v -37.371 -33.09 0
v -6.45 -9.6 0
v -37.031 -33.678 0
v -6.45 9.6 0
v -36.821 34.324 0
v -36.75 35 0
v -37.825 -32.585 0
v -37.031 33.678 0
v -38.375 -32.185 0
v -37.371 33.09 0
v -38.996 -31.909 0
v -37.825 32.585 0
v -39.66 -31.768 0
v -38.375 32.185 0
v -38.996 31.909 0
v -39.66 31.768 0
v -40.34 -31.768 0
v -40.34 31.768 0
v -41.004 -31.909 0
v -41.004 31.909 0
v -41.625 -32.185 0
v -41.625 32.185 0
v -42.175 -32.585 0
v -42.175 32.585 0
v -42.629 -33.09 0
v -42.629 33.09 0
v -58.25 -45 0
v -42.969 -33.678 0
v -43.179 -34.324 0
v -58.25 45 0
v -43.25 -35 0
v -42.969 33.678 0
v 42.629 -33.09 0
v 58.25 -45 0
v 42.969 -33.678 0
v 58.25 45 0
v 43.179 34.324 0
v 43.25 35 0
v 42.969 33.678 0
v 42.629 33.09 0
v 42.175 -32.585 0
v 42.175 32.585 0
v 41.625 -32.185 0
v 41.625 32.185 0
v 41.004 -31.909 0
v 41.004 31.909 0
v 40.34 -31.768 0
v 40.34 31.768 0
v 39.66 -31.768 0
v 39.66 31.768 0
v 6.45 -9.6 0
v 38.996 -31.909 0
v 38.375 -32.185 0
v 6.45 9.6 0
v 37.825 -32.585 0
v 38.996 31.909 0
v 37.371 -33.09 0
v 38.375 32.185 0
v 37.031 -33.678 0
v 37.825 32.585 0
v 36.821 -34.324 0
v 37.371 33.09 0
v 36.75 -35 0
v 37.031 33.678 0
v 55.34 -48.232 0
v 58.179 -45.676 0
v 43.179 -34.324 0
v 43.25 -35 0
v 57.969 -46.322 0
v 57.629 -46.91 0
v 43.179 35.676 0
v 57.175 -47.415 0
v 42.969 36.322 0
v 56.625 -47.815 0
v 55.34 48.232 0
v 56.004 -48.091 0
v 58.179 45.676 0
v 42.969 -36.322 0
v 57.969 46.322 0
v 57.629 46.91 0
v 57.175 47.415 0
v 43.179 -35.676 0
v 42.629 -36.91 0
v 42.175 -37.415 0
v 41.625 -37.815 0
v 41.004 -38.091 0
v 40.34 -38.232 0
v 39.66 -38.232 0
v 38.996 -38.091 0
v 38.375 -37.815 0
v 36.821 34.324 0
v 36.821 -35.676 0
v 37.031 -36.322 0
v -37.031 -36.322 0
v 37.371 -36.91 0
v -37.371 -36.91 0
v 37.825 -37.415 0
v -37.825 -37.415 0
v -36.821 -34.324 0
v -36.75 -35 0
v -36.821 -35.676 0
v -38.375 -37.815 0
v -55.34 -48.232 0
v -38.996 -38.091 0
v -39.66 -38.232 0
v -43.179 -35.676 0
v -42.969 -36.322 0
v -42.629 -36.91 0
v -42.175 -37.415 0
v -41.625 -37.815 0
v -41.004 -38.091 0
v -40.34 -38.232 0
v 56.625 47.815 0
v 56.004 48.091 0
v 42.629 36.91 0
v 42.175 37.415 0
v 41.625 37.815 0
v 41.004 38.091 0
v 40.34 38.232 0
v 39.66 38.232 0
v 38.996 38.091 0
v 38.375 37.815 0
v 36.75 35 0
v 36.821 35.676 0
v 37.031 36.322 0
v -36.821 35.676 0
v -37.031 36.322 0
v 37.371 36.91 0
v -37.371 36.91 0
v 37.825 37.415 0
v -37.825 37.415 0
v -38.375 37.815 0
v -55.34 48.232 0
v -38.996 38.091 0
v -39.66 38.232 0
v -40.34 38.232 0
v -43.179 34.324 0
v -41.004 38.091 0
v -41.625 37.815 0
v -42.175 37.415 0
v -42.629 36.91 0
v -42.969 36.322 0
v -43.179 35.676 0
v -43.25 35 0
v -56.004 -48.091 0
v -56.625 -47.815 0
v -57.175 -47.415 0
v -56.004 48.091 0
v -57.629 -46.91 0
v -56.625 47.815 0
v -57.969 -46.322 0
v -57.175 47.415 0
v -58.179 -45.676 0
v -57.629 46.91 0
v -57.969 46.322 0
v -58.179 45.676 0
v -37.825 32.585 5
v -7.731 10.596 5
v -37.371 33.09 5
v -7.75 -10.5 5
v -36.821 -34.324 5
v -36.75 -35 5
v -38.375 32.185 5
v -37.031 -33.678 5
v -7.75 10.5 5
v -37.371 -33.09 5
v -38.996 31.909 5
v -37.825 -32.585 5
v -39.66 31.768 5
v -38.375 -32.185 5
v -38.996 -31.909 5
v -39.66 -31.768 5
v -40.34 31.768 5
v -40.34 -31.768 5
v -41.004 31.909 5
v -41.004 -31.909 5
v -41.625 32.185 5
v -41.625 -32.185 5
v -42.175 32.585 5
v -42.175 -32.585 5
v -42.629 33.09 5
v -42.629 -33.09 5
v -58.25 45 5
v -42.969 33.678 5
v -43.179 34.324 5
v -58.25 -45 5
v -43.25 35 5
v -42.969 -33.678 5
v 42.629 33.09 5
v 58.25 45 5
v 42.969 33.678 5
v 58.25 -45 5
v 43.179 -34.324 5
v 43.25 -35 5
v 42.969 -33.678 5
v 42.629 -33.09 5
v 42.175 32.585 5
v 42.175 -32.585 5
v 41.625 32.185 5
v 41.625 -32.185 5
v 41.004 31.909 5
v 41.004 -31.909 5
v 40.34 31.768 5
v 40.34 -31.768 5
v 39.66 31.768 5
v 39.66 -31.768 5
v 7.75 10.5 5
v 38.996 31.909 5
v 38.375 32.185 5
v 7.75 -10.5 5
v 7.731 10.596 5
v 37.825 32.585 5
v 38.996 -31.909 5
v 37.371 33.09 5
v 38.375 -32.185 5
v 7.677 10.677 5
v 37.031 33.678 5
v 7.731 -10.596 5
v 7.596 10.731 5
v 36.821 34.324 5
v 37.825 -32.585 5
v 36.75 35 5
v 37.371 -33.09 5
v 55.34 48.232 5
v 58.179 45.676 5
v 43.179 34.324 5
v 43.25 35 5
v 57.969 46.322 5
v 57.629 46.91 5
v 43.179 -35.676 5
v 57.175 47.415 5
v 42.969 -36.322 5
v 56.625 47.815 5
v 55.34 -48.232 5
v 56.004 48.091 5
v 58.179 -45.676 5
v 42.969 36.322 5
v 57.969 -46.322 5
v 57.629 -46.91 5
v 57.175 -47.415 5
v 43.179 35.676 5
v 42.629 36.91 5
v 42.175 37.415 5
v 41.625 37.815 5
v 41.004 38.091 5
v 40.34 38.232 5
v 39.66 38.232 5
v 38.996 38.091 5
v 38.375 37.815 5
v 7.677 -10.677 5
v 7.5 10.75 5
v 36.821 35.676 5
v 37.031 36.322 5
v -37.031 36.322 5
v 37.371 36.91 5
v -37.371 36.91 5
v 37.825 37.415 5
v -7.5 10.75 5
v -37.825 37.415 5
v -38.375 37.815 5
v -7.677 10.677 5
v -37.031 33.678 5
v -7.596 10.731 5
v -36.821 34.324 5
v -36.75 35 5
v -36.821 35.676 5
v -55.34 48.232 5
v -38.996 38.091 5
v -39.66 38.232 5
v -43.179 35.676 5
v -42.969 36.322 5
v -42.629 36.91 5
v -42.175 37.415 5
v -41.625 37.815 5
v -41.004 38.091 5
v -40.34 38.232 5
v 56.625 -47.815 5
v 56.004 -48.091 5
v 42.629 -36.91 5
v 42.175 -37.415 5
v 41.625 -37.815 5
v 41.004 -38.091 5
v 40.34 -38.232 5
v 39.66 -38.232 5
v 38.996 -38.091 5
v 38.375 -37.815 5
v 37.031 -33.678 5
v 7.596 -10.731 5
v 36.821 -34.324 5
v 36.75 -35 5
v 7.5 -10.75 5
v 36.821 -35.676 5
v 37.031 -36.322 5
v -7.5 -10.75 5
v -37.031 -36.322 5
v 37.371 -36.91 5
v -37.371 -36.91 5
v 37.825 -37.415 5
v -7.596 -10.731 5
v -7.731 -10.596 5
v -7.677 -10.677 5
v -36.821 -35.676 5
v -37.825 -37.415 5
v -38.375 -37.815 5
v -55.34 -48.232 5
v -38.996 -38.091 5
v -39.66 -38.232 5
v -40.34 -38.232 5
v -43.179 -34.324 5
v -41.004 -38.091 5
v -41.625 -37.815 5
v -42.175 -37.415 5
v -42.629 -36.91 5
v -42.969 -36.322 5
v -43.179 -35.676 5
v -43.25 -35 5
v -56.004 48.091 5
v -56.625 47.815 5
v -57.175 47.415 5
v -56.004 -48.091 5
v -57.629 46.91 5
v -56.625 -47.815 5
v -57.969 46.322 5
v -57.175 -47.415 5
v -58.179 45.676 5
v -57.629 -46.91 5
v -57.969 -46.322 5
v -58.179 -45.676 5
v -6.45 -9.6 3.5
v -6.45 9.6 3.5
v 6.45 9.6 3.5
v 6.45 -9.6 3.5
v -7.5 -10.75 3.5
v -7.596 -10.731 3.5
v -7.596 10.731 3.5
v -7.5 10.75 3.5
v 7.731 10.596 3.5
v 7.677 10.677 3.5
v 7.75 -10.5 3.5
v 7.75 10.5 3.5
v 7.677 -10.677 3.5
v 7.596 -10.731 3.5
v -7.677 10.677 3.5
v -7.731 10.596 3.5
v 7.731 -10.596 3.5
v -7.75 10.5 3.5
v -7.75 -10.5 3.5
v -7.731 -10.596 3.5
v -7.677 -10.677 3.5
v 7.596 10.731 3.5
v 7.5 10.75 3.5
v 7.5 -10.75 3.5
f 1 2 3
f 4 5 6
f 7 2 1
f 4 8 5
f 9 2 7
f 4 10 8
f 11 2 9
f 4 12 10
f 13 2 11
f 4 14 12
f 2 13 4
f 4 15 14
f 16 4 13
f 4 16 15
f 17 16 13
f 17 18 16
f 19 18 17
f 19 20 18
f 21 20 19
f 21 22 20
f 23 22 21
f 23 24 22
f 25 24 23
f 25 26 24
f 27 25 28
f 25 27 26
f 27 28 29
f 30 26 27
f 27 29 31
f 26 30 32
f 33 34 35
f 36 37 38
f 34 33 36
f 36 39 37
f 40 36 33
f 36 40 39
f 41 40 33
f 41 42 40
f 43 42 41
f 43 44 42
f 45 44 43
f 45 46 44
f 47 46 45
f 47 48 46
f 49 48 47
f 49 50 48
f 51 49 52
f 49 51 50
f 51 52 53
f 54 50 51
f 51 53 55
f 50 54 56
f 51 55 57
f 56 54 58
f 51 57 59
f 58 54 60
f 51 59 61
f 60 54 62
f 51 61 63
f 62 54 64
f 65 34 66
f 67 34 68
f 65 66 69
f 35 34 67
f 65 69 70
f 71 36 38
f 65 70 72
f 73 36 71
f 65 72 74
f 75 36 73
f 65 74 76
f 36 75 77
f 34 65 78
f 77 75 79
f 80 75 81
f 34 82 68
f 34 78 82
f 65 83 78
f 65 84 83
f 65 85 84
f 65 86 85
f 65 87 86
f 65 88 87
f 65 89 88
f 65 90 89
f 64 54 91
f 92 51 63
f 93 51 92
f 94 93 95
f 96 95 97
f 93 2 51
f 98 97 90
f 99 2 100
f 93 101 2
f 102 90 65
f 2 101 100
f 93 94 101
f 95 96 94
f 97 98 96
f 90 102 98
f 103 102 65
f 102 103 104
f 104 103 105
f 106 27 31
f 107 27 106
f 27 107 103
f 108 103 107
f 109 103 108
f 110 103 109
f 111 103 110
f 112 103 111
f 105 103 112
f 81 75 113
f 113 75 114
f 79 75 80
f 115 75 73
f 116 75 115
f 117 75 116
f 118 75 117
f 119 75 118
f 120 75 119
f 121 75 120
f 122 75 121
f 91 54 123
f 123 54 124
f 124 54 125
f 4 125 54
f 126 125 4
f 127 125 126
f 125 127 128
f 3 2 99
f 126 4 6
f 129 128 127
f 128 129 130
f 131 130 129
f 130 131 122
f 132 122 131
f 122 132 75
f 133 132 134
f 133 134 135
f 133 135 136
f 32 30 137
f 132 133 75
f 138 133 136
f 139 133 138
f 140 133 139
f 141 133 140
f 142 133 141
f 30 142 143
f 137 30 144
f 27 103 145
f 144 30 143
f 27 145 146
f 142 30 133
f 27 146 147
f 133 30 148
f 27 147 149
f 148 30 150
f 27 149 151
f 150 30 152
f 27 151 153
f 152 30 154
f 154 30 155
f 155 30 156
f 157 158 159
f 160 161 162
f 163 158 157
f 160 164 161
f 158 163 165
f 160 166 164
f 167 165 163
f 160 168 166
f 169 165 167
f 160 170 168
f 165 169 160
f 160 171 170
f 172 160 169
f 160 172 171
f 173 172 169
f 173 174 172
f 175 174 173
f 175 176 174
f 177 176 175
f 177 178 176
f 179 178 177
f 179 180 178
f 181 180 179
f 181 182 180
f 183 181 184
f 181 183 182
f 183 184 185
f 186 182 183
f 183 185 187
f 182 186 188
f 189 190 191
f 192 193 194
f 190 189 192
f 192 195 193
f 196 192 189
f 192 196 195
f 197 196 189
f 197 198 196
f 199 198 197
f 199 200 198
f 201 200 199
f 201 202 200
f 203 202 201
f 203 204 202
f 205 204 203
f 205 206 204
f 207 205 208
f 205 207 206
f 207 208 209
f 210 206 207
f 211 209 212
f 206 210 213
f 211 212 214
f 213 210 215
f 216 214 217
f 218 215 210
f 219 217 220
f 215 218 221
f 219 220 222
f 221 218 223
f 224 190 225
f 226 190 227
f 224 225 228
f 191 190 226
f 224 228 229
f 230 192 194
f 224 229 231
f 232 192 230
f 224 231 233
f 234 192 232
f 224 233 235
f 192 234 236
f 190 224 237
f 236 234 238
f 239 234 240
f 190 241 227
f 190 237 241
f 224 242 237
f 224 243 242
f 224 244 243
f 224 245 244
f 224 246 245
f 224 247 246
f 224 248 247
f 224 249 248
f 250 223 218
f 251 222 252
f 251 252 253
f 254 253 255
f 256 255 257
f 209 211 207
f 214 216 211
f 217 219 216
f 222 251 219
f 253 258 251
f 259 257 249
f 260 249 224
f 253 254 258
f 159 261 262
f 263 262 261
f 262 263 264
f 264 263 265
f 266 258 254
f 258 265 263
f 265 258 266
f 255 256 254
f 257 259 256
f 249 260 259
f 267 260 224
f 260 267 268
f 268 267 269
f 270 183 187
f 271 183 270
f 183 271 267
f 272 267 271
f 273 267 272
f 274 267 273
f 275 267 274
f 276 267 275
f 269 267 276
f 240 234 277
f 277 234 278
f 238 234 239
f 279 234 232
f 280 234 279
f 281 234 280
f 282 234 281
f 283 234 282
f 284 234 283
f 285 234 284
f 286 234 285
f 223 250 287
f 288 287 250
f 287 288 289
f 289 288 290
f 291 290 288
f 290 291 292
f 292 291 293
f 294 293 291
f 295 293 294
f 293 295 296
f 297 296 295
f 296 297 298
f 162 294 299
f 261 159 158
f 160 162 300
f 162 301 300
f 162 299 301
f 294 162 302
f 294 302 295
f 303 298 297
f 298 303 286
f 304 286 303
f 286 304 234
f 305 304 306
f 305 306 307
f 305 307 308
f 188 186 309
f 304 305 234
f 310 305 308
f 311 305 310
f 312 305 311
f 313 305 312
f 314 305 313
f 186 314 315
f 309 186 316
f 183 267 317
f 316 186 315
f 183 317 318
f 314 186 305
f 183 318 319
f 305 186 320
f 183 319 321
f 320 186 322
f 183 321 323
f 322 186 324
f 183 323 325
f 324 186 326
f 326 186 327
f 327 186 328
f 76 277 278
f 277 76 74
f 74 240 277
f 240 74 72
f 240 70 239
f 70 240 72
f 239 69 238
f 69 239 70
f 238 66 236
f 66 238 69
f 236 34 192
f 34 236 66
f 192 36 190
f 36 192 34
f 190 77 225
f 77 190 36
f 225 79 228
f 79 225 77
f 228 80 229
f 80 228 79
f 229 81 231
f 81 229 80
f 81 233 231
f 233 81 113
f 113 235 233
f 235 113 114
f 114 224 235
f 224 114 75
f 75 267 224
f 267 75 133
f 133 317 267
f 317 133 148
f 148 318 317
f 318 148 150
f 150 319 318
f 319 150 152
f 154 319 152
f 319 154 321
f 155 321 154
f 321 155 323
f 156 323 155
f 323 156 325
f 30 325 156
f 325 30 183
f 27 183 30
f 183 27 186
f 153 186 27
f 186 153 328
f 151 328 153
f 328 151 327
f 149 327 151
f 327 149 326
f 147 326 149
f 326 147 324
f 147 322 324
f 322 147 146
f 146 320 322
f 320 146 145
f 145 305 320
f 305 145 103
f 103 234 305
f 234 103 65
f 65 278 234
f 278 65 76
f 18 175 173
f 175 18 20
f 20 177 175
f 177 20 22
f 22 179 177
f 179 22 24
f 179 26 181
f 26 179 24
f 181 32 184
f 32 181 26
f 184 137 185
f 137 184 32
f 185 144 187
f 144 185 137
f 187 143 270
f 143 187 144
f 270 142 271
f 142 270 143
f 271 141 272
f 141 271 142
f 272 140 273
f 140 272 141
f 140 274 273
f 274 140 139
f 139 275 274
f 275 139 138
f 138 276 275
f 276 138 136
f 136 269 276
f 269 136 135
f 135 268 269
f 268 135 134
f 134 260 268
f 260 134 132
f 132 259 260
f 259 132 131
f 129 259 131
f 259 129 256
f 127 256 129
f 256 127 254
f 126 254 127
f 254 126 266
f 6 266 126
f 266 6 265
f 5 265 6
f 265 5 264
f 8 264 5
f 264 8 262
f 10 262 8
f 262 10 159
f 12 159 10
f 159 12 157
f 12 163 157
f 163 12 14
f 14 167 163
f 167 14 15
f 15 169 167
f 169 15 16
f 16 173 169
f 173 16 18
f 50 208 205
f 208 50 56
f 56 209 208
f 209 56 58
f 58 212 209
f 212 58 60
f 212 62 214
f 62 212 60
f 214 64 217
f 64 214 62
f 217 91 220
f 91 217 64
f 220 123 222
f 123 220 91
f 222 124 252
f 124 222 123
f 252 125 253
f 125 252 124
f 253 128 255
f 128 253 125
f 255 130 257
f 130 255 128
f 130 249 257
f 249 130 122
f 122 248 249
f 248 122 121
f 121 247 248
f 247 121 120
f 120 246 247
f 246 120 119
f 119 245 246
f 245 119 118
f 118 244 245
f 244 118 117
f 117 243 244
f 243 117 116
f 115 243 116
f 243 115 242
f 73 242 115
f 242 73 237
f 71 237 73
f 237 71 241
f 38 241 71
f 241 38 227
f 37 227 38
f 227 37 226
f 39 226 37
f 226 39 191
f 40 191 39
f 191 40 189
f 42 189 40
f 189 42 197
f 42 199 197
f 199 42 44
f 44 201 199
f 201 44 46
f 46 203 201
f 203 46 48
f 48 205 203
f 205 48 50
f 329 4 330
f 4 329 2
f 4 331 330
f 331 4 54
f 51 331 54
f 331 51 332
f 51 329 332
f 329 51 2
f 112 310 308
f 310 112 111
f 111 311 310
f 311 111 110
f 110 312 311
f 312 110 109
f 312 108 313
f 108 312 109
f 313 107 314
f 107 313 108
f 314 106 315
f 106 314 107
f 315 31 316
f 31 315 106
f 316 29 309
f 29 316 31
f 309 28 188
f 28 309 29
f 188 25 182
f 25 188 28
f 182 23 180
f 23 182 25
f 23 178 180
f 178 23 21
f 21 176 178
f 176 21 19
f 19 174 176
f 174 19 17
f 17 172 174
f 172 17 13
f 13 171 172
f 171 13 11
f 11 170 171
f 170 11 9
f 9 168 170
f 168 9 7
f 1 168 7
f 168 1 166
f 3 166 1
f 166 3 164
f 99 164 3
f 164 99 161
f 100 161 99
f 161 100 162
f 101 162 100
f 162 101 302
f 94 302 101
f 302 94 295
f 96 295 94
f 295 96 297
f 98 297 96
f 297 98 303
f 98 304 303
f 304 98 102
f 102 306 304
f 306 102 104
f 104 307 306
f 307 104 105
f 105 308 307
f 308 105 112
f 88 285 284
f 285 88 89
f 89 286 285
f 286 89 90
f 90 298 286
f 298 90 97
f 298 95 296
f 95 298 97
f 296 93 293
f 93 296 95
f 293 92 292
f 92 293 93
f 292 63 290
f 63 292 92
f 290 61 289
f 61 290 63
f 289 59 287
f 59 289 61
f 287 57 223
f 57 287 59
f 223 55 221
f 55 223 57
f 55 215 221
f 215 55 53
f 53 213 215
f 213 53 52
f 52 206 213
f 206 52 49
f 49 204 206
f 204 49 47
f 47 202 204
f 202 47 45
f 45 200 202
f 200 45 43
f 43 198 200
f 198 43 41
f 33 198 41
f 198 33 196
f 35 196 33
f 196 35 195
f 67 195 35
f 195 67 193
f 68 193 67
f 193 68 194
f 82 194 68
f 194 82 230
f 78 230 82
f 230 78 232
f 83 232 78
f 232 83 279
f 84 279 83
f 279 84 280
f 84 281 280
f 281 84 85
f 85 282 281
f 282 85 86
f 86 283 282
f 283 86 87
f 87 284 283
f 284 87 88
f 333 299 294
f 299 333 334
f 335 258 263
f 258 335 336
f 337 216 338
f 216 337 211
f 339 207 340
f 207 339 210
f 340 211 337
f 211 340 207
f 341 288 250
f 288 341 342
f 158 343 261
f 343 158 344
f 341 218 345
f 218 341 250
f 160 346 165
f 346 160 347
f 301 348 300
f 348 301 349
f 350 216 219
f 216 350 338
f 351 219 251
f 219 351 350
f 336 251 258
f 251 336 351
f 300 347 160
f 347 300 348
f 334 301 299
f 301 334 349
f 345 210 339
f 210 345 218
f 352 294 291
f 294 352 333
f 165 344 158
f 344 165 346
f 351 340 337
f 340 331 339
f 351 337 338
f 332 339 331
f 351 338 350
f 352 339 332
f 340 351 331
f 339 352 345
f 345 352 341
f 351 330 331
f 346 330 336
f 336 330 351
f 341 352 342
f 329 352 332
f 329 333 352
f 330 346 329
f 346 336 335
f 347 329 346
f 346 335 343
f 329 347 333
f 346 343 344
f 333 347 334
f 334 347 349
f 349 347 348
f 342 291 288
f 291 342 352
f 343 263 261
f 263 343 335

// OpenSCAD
$fs=0.1;

difference() {
    linear_extrude(5) difference() {
        minkowski() {
            square([110, 90], center=true);
            circle(d=6.5);
        };
        translate([-40,  35]) circle(d=6.5);
        translate([ 40,  35]) circle(d=6.5);
        translate([-40, -35]) circle(d=6.5);
        translate([ 40, -35]) circle(d=6.5);
        square([12.9, 19.2], center=true);
    };
    translate([0,0,3.5])
    linear_extrude(3)
    minkowski() {
        square([15, 21], center=true);
        circle(0.25);
    };
};
